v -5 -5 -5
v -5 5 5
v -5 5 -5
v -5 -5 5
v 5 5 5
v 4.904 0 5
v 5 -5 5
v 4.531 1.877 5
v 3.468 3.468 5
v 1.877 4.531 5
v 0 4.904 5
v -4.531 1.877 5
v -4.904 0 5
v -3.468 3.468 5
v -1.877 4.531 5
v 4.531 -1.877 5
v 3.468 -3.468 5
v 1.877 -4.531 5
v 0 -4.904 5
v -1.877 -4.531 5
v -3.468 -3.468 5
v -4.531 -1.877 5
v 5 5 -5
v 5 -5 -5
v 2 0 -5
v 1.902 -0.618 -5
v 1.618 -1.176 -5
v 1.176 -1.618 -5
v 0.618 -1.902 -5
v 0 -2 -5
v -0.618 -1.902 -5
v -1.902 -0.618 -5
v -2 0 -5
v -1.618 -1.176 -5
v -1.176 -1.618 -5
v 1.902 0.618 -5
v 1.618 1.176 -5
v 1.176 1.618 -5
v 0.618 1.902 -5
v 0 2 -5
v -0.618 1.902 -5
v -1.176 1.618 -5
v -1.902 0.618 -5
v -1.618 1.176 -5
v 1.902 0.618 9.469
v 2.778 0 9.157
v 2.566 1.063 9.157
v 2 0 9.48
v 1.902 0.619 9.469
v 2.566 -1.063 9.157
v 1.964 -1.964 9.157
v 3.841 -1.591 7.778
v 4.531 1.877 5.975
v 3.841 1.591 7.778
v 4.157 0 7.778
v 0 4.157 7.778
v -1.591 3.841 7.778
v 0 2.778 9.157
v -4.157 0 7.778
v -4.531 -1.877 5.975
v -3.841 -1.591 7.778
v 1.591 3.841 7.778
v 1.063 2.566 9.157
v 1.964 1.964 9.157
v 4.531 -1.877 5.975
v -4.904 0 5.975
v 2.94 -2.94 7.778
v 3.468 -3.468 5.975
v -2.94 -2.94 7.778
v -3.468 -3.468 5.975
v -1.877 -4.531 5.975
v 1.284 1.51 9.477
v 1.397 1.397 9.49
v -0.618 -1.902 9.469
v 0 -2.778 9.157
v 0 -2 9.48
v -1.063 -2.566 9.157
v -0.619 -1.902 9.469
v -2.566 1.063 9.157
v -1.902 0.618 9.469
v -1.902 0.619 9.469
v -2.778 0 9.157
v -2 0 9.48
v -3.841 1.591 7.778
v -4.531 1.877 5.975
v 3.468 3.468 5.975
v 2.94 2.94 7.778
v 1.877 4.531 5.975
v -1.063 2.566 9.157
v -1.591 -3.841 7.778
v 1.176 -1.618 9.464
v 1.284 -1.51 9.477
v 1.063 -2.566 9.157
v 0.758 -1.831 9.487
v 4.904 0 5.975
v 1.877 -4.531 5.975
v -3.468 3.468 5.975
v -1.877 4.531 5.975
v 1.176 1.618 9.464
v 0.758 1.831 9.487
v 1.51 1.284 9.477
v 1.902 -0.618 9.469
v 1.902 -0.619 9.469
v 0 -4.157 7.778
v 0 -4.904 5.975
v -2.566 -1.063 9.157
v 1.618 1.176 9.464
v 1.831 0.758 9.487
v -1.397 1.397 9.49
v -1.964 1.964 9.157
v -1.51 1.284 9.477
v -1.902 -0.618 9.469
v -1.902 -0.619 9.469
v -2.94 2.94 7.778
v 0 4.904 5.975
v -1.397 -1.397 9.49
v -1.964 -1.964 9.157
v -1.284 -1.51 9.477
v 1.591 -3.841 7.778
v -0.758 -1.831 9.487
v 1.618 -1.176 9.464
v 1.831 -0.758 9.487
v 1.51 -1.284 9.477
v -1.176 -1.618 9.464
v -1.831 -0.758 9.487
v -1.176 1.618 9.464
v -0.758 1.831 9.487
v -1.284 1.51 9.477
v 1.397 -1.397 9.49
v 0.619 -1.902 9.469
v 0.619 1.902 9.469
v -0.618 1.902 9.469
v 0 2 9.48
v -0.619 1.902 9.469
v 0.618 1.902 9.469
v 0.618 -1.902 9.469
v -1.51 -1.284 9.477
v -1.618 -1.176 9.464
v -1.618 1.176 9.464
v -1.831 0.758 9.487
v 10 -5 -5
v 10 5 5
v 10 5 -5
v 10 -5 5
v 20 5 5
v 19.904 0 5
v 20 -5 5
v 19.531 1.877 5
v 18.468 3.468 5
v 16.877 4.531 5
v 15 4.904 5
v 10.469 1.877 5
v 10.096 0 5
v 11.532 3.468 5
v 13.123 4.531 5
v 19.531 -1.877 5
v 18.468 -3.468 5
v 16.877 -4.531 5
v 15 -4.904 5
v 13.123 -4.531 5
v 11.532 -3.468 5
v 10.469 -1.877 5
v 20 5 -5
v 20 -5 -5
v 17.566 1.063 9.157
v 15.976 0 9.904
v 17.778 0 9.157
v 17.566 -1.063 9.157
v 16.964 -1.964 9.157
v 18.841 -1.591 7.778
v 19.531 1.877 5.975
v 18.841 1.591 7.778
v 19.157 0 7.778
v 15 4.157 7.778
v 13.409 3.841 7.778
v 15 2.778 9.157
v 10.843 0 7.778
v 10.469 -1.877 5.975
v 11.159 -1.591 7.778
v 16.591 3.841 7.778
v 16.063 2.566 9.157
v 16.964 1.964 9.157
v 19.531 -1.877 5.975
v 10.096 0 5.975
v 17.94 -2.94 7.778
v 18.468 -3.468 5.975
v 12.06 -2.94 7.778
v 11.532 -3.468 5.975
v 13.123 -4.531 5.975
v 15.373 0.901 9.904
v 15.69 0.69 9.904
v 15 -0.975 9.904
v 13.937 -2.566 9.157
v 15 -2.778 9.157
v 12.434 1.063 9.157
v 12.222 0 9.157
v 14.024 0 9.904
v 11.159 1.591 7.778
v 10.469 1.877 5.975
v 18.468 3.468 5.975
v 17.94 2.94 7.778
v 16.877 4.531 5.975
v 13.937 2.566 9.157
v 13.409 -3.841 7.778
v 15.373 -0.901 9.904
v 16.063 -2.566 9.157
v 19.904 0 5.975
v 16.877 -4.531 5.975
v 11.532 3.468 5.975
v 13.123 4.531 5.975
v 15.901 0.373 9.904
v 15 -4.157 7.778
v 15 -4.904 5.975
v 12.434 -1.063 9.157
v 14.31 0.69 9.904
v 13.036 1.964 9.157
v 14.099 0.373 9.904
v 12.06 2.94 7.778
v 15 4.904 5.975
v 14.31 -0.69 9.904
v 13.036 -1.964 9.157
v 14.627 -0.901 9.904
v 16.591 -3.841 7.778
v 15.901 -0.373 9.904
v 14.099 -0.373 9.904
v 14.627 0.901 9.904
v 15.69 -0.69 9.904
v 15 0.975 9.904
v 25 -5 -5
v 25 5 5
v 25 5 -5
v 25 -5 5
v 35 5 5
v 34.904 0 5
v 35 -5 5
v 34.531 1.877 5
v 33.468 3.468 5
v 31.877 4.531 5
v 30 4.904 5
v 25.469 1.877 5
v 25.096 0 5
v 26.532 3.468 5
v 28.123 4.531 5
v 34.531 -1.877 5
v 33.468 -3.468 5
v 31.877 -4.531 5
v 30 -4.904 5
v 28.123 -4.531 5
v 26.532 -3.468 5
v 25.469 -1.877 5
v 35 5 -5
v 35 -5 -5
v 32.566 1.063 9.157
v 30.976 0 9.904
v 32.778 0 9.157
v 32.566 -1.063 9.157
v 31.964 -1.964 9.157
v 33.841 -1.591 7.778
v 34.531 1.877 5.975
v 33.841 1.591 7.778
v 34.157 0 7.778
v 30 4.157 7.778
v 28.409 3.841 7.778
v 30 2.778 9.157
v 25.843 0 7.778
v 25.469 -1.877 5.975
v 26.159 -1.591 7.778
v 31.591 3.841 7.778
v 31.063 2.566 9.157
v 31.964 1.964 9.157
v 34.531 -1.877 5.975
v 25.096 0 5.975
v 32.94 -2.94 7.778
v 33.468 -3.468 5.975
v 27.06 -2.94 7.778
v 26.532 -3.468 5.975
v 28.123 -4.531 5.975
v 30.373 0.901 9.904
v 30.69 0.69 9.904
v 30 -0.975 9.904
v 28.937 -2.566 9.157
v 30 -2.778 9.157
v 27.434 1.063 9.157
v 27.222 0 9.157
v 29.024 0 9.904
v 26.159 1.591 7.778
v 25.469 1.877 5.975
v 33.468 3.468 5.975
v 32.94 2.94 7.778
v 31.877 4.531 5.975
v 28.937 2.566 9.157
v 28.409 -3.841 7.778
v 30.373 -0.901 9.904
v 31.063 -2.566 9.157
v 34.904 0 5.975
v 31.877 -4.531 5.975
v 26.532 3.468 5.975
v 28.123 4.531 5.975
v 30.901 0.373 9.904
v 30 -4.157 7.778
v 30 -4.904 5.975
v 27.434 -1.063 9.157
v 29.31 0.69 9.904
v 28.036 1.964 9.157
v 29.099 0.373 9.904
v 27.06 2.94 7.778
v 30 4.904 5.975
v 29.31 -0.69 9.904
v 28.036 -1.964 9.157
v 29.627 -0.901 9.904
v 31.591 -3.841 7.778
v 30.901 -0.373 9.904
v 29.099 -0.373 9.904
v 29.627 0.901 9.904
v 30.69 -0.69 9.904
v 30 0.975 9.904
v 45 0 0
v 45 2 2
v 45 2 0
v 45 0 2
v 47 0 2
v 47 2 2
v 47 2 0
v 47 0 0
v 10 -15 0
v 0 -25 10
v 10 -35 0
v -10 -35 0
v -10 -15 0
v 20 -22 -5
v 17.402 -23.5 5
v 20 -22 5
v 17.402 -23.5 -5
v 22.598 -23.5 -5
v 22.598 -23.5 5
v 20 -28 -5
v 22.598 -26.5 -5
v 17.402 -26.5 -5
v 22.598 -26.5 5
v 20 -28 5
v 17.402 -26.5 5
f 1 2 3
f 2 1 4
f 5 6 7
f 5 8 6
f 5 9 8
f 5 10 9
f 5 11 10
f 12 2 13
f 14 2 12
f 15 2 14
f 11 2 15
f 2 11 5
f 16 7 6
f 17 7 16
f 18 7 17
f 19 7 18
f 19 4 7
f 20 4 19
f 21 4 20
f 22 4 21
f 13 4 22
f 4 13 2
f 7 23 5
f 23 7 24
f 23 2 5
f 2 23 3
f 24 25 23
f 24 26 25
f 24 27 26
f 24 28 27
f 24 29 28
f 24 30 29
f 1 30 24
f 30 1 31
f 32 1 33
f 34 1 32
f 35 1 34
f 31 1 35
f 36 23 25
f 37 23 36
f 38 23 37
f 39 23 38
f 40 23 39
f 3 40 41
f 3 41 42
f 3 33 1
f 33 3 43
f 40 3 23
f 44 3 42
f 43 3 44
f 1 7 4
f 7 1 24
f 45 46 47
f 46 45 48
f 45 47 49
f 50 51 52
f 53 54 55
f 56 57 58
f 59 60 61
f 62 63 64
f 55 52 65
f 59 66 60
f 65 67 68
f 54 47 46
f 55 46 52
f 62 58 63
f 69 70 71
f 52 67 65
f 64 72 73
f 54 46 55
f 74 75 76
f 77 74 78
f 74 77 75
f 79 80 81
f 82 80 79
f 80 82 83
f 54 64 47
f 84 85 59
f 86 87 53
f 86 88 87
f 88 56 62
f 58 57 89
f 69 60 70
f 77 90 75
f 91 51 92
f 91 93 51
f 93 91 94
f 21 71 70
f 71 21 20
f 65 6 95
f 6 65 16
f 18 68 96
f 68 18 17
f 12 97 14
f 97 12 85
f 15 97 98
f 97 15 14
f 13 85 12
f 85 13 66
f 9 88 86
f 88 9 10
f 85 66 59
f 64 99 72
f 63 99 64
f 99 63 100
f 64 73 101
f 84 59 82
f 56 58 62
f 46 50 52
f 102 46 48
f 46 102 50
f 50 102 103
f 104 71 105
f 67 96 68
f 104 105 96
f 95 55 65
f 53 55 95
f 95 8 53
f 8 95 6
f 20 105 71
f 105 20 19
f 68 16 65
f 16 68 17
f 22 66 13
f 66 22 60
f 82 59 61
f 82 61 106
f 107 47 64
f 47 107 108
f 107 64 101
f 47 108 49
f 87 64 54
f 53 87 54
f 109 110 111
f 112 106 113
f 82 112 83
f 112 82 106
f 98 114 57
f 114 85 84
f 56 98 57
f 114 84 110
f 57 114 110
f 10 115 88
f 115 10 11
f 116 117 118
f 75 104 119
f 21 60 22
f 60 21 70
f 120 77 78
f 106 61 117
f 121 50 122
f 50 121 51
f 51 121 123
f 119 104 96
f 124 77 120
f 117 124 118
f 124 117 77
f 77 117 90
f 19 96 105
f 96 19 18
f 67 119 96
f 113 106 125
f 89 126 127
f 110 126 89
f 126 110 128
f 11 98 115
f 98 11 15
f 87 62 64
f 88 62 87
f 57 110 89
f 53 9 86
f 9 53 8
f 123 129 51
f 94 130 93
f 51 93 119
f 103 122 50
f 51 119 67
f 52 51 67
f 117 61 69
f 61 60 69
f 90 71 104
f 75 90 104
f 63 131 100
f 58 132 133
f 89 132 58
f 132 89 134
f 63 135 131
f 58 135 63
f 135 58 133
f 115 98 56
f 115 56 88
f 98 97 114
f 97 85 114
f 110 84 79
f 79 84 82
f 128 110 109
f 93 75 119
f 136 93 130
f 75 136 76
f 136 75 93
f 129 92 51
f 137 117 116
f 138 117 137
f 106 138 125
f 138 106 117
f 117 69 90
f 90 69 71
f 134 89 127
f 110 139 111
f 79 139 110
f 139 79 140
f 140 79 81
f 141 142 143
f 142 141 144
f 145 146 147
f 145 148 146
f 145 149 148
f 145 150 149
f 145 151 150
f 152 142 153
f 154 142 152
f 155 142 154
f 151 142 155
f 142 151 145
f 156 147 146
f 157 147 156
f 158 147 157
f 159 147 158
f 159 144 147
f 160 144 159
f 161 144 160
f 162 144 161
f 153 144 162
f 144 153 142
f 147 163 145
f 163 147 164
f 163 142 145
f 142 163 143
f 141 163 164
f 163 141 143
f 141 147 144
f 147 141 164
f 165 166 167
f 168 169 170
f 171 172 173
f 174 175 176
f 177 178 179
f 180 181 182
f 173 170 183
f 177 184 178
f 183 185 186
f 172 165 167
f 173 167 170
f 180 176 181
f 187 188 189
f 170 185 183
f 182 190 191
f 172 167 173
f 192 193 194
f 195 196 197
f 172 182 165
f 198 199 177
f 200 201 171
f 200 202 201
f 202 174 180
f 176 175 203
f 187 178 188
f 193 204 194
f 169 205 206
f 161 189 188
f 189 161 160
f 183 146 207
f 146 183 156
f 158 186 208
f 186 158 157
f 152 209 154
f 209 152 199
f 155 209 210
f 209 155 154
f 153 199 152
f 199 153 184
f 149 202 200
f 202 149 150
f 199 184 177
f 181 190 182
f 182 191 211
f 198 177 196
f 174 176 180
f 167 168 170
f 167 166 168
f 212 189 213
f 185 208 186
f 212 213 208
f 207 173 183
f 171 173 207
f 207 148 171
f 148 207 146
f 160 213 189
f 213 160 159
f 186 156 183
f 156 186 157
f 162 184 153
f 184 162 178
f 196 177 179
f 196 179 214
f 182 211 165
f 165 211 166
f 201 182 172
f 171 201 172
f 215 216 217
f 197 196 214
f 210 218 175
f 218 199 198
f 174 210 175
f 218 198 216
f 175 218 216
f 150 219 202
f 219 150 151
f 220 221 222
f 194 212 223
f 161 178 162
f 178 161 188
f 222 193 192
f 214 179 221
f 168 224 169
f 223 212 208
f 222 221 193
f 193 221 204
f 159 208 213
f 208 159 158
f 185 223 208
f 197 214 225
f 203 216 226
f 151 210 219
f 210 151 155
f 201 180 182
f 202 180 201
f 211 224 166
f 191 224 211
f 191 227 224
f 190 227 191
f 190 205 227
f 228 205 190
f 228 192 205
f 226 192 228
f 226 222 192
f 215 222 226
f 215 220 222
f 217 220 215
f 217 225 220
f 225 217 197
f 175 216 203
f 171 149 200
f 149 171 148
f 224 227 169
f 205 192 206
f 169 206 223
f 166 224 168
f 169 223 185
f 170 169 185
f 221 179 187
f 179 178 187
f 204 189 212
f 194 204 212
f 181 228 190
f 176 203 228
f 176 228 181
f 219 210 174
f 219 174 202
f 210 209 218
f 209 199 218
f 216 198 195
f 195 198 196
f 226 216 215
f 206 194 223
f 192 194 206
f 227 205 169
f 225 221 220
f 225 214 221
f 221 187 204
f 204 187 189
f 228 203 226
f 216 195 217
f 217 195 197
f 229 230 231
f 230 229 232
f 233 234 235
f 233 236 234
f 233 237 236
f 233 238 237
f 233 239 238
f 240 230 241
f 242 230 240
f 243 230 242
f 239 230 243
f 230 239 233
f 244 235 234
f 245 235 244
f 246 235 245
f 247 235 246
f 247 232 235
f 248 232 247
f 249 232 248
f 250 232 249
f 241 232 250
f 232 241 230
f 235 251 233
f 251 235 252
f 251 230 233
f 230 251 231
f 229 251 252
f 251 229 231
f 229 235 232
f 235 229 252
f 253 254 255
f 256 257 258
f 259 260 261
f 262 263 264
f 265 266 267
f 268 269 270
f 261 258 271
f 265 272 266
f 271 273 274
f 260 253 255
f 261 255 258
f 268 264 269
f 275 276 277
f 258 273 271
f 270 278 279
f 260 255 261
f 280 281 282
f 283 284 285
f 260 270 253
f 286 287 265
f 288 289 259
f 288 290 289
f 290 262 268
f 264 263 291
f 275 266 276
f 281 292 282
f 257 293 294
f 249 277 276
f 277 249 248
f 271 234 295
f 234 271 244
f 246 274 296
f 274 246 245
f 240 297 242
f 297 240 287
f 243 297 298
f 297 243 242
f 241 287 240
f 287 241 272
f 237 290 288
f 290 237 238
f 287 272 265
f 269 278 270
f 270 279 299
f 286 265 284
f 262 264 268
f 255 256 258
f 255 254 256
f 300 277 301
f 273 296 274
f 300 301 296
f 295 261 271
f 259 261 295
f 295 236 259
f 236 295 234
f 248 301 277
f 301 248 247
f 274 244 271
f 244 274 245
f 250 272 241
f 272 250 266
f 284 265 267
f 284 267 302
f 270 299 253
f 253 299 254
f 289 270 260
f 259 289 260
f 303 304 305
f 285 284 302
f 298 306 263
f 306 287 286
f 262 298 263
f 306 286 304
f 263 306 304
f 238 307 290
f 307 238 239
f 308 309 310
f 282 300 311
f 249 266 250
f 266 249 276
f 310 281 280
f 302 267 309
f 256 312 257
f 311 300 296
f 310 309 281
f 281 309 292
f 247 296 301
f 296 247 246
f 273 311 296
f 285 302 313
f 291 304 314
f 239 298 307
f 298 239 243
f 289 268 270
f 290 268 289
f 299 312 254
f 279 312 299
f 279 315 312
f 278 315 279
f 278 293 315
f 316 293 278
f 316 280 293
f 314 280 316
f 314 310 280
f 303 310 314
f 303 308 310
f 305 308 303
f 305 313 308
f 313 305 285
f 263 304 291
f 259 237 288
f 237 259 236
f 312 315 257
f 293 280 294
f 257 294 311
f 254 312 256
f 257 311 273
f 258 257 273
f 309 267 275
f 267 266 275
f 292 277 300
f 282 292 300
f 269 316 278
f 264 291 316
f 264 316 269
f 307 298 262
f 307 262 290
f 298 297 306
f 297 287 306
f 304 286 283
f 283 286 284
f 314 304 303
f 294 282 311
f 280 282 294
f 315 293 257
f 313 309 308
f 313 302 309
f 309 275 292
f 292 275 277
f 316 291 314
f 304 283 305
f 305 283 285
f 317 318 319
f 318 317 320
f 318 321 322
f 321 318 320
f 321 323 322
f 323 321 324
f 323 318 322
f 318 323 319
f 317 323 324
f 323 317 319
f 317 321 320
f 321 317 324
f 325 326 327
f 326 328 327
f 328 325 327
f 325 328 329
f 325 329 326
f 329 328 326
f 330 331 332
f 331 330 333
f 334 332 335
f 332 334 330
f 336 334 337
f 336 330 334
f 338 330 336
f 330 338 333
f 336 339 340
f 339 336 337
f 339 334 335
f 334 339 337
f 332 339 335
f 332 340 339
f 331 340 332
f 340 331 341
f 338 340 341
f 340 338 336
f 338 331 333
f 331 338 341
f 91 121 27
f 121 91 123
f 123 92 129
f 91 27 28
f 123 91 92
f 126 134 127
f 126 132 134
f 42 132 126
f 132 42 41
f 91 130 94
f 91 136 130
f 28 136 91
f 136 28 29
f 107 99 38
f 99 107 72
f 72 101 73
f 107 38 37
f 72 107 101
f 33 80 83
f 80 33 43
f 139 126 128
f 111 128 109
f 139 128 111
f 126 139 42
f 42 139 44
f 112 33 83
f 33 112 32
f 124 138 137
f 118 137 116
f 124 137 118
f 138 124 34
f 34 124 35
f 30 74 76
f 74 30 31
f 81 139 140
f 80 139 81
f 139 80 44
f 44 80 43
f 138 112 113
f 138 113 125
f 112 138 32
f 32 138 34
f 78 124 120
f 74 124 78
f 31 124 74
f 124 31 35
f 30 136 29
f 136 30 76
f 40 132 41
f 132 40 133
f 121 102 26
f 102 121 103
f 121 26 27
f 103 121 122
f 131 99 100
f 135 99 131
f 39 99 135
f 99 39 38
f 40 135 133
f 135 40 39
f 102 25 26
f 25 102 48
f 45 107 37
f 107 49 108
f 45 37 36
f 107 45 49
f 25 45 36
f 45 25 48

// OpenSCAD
difference () {
  union () {
    translate ([0.000, 0.000, 0.000]) {
      union () {
        cube (size = [ 10.000, 10.000, 10.000], center = true);
        translate ([0.000, 0.000, 5.000]) {
          sphere (r = 5.000);
        }
      }
    }
    translate ([15.000, 0.000, 0.000]) {
      union () {
        cube (size = [ 10.000, 10.000, 10.000], center = true);
        translate ([0.000, 0.000, 5.000]) {
          sphere (r = 5.000);
        }
      }
    }
    translate ([30.000, 0.000, 0.000]) {
      union () {
        cube (size = [ 10.000, 10.000, 10.000], center = true);
        translate ([0.000, 0.000, 5.000]) {
          sphere (r = 5.000);
        }
      }
    }
    translate ([45.000, 0.000, 0.000]) {
      cube(2);
    }
    translate ([0.000, -25.000, 0.000]) {
      polyhedron (points = [[10.000, 10.000, 0.000],[10.000, -10.000, 0.000],[-10.000, -10.000, 0.000],[-10.000, 10.000, 0.000],[0.000, 0.000, 10.000]], faces = [[0,1,4],[1,2,4],[2,3,4],[3,0,4],[1,0,3],[2,1,3]], convexity = 1);
    }
    translate ([20.000, -25.000, 0.000]) {
      linear_extrude (height = 10.000, center = true, convexity = 10.000, twist = 0.000, slices = 20, scale = 1.000) {
        polygon (points = [[0.000, 3.000],[2.598, 1.500],[2.598, -1.500],[0.000, -3.000],[-2.598, -1.500],[-2.598, 1.500]]);
      }
    }
  }
  linear_extrude (height = 30.000, center = true, convexity = 10.000, twist = 0.000, slices = 20, scale = 1.000) {
    projection (cut = false) {
      cylinder(h = 1.000, r1 = 2.000, r2 = 2.000, center = true, $fn = 20.000);
    }
  }
}
